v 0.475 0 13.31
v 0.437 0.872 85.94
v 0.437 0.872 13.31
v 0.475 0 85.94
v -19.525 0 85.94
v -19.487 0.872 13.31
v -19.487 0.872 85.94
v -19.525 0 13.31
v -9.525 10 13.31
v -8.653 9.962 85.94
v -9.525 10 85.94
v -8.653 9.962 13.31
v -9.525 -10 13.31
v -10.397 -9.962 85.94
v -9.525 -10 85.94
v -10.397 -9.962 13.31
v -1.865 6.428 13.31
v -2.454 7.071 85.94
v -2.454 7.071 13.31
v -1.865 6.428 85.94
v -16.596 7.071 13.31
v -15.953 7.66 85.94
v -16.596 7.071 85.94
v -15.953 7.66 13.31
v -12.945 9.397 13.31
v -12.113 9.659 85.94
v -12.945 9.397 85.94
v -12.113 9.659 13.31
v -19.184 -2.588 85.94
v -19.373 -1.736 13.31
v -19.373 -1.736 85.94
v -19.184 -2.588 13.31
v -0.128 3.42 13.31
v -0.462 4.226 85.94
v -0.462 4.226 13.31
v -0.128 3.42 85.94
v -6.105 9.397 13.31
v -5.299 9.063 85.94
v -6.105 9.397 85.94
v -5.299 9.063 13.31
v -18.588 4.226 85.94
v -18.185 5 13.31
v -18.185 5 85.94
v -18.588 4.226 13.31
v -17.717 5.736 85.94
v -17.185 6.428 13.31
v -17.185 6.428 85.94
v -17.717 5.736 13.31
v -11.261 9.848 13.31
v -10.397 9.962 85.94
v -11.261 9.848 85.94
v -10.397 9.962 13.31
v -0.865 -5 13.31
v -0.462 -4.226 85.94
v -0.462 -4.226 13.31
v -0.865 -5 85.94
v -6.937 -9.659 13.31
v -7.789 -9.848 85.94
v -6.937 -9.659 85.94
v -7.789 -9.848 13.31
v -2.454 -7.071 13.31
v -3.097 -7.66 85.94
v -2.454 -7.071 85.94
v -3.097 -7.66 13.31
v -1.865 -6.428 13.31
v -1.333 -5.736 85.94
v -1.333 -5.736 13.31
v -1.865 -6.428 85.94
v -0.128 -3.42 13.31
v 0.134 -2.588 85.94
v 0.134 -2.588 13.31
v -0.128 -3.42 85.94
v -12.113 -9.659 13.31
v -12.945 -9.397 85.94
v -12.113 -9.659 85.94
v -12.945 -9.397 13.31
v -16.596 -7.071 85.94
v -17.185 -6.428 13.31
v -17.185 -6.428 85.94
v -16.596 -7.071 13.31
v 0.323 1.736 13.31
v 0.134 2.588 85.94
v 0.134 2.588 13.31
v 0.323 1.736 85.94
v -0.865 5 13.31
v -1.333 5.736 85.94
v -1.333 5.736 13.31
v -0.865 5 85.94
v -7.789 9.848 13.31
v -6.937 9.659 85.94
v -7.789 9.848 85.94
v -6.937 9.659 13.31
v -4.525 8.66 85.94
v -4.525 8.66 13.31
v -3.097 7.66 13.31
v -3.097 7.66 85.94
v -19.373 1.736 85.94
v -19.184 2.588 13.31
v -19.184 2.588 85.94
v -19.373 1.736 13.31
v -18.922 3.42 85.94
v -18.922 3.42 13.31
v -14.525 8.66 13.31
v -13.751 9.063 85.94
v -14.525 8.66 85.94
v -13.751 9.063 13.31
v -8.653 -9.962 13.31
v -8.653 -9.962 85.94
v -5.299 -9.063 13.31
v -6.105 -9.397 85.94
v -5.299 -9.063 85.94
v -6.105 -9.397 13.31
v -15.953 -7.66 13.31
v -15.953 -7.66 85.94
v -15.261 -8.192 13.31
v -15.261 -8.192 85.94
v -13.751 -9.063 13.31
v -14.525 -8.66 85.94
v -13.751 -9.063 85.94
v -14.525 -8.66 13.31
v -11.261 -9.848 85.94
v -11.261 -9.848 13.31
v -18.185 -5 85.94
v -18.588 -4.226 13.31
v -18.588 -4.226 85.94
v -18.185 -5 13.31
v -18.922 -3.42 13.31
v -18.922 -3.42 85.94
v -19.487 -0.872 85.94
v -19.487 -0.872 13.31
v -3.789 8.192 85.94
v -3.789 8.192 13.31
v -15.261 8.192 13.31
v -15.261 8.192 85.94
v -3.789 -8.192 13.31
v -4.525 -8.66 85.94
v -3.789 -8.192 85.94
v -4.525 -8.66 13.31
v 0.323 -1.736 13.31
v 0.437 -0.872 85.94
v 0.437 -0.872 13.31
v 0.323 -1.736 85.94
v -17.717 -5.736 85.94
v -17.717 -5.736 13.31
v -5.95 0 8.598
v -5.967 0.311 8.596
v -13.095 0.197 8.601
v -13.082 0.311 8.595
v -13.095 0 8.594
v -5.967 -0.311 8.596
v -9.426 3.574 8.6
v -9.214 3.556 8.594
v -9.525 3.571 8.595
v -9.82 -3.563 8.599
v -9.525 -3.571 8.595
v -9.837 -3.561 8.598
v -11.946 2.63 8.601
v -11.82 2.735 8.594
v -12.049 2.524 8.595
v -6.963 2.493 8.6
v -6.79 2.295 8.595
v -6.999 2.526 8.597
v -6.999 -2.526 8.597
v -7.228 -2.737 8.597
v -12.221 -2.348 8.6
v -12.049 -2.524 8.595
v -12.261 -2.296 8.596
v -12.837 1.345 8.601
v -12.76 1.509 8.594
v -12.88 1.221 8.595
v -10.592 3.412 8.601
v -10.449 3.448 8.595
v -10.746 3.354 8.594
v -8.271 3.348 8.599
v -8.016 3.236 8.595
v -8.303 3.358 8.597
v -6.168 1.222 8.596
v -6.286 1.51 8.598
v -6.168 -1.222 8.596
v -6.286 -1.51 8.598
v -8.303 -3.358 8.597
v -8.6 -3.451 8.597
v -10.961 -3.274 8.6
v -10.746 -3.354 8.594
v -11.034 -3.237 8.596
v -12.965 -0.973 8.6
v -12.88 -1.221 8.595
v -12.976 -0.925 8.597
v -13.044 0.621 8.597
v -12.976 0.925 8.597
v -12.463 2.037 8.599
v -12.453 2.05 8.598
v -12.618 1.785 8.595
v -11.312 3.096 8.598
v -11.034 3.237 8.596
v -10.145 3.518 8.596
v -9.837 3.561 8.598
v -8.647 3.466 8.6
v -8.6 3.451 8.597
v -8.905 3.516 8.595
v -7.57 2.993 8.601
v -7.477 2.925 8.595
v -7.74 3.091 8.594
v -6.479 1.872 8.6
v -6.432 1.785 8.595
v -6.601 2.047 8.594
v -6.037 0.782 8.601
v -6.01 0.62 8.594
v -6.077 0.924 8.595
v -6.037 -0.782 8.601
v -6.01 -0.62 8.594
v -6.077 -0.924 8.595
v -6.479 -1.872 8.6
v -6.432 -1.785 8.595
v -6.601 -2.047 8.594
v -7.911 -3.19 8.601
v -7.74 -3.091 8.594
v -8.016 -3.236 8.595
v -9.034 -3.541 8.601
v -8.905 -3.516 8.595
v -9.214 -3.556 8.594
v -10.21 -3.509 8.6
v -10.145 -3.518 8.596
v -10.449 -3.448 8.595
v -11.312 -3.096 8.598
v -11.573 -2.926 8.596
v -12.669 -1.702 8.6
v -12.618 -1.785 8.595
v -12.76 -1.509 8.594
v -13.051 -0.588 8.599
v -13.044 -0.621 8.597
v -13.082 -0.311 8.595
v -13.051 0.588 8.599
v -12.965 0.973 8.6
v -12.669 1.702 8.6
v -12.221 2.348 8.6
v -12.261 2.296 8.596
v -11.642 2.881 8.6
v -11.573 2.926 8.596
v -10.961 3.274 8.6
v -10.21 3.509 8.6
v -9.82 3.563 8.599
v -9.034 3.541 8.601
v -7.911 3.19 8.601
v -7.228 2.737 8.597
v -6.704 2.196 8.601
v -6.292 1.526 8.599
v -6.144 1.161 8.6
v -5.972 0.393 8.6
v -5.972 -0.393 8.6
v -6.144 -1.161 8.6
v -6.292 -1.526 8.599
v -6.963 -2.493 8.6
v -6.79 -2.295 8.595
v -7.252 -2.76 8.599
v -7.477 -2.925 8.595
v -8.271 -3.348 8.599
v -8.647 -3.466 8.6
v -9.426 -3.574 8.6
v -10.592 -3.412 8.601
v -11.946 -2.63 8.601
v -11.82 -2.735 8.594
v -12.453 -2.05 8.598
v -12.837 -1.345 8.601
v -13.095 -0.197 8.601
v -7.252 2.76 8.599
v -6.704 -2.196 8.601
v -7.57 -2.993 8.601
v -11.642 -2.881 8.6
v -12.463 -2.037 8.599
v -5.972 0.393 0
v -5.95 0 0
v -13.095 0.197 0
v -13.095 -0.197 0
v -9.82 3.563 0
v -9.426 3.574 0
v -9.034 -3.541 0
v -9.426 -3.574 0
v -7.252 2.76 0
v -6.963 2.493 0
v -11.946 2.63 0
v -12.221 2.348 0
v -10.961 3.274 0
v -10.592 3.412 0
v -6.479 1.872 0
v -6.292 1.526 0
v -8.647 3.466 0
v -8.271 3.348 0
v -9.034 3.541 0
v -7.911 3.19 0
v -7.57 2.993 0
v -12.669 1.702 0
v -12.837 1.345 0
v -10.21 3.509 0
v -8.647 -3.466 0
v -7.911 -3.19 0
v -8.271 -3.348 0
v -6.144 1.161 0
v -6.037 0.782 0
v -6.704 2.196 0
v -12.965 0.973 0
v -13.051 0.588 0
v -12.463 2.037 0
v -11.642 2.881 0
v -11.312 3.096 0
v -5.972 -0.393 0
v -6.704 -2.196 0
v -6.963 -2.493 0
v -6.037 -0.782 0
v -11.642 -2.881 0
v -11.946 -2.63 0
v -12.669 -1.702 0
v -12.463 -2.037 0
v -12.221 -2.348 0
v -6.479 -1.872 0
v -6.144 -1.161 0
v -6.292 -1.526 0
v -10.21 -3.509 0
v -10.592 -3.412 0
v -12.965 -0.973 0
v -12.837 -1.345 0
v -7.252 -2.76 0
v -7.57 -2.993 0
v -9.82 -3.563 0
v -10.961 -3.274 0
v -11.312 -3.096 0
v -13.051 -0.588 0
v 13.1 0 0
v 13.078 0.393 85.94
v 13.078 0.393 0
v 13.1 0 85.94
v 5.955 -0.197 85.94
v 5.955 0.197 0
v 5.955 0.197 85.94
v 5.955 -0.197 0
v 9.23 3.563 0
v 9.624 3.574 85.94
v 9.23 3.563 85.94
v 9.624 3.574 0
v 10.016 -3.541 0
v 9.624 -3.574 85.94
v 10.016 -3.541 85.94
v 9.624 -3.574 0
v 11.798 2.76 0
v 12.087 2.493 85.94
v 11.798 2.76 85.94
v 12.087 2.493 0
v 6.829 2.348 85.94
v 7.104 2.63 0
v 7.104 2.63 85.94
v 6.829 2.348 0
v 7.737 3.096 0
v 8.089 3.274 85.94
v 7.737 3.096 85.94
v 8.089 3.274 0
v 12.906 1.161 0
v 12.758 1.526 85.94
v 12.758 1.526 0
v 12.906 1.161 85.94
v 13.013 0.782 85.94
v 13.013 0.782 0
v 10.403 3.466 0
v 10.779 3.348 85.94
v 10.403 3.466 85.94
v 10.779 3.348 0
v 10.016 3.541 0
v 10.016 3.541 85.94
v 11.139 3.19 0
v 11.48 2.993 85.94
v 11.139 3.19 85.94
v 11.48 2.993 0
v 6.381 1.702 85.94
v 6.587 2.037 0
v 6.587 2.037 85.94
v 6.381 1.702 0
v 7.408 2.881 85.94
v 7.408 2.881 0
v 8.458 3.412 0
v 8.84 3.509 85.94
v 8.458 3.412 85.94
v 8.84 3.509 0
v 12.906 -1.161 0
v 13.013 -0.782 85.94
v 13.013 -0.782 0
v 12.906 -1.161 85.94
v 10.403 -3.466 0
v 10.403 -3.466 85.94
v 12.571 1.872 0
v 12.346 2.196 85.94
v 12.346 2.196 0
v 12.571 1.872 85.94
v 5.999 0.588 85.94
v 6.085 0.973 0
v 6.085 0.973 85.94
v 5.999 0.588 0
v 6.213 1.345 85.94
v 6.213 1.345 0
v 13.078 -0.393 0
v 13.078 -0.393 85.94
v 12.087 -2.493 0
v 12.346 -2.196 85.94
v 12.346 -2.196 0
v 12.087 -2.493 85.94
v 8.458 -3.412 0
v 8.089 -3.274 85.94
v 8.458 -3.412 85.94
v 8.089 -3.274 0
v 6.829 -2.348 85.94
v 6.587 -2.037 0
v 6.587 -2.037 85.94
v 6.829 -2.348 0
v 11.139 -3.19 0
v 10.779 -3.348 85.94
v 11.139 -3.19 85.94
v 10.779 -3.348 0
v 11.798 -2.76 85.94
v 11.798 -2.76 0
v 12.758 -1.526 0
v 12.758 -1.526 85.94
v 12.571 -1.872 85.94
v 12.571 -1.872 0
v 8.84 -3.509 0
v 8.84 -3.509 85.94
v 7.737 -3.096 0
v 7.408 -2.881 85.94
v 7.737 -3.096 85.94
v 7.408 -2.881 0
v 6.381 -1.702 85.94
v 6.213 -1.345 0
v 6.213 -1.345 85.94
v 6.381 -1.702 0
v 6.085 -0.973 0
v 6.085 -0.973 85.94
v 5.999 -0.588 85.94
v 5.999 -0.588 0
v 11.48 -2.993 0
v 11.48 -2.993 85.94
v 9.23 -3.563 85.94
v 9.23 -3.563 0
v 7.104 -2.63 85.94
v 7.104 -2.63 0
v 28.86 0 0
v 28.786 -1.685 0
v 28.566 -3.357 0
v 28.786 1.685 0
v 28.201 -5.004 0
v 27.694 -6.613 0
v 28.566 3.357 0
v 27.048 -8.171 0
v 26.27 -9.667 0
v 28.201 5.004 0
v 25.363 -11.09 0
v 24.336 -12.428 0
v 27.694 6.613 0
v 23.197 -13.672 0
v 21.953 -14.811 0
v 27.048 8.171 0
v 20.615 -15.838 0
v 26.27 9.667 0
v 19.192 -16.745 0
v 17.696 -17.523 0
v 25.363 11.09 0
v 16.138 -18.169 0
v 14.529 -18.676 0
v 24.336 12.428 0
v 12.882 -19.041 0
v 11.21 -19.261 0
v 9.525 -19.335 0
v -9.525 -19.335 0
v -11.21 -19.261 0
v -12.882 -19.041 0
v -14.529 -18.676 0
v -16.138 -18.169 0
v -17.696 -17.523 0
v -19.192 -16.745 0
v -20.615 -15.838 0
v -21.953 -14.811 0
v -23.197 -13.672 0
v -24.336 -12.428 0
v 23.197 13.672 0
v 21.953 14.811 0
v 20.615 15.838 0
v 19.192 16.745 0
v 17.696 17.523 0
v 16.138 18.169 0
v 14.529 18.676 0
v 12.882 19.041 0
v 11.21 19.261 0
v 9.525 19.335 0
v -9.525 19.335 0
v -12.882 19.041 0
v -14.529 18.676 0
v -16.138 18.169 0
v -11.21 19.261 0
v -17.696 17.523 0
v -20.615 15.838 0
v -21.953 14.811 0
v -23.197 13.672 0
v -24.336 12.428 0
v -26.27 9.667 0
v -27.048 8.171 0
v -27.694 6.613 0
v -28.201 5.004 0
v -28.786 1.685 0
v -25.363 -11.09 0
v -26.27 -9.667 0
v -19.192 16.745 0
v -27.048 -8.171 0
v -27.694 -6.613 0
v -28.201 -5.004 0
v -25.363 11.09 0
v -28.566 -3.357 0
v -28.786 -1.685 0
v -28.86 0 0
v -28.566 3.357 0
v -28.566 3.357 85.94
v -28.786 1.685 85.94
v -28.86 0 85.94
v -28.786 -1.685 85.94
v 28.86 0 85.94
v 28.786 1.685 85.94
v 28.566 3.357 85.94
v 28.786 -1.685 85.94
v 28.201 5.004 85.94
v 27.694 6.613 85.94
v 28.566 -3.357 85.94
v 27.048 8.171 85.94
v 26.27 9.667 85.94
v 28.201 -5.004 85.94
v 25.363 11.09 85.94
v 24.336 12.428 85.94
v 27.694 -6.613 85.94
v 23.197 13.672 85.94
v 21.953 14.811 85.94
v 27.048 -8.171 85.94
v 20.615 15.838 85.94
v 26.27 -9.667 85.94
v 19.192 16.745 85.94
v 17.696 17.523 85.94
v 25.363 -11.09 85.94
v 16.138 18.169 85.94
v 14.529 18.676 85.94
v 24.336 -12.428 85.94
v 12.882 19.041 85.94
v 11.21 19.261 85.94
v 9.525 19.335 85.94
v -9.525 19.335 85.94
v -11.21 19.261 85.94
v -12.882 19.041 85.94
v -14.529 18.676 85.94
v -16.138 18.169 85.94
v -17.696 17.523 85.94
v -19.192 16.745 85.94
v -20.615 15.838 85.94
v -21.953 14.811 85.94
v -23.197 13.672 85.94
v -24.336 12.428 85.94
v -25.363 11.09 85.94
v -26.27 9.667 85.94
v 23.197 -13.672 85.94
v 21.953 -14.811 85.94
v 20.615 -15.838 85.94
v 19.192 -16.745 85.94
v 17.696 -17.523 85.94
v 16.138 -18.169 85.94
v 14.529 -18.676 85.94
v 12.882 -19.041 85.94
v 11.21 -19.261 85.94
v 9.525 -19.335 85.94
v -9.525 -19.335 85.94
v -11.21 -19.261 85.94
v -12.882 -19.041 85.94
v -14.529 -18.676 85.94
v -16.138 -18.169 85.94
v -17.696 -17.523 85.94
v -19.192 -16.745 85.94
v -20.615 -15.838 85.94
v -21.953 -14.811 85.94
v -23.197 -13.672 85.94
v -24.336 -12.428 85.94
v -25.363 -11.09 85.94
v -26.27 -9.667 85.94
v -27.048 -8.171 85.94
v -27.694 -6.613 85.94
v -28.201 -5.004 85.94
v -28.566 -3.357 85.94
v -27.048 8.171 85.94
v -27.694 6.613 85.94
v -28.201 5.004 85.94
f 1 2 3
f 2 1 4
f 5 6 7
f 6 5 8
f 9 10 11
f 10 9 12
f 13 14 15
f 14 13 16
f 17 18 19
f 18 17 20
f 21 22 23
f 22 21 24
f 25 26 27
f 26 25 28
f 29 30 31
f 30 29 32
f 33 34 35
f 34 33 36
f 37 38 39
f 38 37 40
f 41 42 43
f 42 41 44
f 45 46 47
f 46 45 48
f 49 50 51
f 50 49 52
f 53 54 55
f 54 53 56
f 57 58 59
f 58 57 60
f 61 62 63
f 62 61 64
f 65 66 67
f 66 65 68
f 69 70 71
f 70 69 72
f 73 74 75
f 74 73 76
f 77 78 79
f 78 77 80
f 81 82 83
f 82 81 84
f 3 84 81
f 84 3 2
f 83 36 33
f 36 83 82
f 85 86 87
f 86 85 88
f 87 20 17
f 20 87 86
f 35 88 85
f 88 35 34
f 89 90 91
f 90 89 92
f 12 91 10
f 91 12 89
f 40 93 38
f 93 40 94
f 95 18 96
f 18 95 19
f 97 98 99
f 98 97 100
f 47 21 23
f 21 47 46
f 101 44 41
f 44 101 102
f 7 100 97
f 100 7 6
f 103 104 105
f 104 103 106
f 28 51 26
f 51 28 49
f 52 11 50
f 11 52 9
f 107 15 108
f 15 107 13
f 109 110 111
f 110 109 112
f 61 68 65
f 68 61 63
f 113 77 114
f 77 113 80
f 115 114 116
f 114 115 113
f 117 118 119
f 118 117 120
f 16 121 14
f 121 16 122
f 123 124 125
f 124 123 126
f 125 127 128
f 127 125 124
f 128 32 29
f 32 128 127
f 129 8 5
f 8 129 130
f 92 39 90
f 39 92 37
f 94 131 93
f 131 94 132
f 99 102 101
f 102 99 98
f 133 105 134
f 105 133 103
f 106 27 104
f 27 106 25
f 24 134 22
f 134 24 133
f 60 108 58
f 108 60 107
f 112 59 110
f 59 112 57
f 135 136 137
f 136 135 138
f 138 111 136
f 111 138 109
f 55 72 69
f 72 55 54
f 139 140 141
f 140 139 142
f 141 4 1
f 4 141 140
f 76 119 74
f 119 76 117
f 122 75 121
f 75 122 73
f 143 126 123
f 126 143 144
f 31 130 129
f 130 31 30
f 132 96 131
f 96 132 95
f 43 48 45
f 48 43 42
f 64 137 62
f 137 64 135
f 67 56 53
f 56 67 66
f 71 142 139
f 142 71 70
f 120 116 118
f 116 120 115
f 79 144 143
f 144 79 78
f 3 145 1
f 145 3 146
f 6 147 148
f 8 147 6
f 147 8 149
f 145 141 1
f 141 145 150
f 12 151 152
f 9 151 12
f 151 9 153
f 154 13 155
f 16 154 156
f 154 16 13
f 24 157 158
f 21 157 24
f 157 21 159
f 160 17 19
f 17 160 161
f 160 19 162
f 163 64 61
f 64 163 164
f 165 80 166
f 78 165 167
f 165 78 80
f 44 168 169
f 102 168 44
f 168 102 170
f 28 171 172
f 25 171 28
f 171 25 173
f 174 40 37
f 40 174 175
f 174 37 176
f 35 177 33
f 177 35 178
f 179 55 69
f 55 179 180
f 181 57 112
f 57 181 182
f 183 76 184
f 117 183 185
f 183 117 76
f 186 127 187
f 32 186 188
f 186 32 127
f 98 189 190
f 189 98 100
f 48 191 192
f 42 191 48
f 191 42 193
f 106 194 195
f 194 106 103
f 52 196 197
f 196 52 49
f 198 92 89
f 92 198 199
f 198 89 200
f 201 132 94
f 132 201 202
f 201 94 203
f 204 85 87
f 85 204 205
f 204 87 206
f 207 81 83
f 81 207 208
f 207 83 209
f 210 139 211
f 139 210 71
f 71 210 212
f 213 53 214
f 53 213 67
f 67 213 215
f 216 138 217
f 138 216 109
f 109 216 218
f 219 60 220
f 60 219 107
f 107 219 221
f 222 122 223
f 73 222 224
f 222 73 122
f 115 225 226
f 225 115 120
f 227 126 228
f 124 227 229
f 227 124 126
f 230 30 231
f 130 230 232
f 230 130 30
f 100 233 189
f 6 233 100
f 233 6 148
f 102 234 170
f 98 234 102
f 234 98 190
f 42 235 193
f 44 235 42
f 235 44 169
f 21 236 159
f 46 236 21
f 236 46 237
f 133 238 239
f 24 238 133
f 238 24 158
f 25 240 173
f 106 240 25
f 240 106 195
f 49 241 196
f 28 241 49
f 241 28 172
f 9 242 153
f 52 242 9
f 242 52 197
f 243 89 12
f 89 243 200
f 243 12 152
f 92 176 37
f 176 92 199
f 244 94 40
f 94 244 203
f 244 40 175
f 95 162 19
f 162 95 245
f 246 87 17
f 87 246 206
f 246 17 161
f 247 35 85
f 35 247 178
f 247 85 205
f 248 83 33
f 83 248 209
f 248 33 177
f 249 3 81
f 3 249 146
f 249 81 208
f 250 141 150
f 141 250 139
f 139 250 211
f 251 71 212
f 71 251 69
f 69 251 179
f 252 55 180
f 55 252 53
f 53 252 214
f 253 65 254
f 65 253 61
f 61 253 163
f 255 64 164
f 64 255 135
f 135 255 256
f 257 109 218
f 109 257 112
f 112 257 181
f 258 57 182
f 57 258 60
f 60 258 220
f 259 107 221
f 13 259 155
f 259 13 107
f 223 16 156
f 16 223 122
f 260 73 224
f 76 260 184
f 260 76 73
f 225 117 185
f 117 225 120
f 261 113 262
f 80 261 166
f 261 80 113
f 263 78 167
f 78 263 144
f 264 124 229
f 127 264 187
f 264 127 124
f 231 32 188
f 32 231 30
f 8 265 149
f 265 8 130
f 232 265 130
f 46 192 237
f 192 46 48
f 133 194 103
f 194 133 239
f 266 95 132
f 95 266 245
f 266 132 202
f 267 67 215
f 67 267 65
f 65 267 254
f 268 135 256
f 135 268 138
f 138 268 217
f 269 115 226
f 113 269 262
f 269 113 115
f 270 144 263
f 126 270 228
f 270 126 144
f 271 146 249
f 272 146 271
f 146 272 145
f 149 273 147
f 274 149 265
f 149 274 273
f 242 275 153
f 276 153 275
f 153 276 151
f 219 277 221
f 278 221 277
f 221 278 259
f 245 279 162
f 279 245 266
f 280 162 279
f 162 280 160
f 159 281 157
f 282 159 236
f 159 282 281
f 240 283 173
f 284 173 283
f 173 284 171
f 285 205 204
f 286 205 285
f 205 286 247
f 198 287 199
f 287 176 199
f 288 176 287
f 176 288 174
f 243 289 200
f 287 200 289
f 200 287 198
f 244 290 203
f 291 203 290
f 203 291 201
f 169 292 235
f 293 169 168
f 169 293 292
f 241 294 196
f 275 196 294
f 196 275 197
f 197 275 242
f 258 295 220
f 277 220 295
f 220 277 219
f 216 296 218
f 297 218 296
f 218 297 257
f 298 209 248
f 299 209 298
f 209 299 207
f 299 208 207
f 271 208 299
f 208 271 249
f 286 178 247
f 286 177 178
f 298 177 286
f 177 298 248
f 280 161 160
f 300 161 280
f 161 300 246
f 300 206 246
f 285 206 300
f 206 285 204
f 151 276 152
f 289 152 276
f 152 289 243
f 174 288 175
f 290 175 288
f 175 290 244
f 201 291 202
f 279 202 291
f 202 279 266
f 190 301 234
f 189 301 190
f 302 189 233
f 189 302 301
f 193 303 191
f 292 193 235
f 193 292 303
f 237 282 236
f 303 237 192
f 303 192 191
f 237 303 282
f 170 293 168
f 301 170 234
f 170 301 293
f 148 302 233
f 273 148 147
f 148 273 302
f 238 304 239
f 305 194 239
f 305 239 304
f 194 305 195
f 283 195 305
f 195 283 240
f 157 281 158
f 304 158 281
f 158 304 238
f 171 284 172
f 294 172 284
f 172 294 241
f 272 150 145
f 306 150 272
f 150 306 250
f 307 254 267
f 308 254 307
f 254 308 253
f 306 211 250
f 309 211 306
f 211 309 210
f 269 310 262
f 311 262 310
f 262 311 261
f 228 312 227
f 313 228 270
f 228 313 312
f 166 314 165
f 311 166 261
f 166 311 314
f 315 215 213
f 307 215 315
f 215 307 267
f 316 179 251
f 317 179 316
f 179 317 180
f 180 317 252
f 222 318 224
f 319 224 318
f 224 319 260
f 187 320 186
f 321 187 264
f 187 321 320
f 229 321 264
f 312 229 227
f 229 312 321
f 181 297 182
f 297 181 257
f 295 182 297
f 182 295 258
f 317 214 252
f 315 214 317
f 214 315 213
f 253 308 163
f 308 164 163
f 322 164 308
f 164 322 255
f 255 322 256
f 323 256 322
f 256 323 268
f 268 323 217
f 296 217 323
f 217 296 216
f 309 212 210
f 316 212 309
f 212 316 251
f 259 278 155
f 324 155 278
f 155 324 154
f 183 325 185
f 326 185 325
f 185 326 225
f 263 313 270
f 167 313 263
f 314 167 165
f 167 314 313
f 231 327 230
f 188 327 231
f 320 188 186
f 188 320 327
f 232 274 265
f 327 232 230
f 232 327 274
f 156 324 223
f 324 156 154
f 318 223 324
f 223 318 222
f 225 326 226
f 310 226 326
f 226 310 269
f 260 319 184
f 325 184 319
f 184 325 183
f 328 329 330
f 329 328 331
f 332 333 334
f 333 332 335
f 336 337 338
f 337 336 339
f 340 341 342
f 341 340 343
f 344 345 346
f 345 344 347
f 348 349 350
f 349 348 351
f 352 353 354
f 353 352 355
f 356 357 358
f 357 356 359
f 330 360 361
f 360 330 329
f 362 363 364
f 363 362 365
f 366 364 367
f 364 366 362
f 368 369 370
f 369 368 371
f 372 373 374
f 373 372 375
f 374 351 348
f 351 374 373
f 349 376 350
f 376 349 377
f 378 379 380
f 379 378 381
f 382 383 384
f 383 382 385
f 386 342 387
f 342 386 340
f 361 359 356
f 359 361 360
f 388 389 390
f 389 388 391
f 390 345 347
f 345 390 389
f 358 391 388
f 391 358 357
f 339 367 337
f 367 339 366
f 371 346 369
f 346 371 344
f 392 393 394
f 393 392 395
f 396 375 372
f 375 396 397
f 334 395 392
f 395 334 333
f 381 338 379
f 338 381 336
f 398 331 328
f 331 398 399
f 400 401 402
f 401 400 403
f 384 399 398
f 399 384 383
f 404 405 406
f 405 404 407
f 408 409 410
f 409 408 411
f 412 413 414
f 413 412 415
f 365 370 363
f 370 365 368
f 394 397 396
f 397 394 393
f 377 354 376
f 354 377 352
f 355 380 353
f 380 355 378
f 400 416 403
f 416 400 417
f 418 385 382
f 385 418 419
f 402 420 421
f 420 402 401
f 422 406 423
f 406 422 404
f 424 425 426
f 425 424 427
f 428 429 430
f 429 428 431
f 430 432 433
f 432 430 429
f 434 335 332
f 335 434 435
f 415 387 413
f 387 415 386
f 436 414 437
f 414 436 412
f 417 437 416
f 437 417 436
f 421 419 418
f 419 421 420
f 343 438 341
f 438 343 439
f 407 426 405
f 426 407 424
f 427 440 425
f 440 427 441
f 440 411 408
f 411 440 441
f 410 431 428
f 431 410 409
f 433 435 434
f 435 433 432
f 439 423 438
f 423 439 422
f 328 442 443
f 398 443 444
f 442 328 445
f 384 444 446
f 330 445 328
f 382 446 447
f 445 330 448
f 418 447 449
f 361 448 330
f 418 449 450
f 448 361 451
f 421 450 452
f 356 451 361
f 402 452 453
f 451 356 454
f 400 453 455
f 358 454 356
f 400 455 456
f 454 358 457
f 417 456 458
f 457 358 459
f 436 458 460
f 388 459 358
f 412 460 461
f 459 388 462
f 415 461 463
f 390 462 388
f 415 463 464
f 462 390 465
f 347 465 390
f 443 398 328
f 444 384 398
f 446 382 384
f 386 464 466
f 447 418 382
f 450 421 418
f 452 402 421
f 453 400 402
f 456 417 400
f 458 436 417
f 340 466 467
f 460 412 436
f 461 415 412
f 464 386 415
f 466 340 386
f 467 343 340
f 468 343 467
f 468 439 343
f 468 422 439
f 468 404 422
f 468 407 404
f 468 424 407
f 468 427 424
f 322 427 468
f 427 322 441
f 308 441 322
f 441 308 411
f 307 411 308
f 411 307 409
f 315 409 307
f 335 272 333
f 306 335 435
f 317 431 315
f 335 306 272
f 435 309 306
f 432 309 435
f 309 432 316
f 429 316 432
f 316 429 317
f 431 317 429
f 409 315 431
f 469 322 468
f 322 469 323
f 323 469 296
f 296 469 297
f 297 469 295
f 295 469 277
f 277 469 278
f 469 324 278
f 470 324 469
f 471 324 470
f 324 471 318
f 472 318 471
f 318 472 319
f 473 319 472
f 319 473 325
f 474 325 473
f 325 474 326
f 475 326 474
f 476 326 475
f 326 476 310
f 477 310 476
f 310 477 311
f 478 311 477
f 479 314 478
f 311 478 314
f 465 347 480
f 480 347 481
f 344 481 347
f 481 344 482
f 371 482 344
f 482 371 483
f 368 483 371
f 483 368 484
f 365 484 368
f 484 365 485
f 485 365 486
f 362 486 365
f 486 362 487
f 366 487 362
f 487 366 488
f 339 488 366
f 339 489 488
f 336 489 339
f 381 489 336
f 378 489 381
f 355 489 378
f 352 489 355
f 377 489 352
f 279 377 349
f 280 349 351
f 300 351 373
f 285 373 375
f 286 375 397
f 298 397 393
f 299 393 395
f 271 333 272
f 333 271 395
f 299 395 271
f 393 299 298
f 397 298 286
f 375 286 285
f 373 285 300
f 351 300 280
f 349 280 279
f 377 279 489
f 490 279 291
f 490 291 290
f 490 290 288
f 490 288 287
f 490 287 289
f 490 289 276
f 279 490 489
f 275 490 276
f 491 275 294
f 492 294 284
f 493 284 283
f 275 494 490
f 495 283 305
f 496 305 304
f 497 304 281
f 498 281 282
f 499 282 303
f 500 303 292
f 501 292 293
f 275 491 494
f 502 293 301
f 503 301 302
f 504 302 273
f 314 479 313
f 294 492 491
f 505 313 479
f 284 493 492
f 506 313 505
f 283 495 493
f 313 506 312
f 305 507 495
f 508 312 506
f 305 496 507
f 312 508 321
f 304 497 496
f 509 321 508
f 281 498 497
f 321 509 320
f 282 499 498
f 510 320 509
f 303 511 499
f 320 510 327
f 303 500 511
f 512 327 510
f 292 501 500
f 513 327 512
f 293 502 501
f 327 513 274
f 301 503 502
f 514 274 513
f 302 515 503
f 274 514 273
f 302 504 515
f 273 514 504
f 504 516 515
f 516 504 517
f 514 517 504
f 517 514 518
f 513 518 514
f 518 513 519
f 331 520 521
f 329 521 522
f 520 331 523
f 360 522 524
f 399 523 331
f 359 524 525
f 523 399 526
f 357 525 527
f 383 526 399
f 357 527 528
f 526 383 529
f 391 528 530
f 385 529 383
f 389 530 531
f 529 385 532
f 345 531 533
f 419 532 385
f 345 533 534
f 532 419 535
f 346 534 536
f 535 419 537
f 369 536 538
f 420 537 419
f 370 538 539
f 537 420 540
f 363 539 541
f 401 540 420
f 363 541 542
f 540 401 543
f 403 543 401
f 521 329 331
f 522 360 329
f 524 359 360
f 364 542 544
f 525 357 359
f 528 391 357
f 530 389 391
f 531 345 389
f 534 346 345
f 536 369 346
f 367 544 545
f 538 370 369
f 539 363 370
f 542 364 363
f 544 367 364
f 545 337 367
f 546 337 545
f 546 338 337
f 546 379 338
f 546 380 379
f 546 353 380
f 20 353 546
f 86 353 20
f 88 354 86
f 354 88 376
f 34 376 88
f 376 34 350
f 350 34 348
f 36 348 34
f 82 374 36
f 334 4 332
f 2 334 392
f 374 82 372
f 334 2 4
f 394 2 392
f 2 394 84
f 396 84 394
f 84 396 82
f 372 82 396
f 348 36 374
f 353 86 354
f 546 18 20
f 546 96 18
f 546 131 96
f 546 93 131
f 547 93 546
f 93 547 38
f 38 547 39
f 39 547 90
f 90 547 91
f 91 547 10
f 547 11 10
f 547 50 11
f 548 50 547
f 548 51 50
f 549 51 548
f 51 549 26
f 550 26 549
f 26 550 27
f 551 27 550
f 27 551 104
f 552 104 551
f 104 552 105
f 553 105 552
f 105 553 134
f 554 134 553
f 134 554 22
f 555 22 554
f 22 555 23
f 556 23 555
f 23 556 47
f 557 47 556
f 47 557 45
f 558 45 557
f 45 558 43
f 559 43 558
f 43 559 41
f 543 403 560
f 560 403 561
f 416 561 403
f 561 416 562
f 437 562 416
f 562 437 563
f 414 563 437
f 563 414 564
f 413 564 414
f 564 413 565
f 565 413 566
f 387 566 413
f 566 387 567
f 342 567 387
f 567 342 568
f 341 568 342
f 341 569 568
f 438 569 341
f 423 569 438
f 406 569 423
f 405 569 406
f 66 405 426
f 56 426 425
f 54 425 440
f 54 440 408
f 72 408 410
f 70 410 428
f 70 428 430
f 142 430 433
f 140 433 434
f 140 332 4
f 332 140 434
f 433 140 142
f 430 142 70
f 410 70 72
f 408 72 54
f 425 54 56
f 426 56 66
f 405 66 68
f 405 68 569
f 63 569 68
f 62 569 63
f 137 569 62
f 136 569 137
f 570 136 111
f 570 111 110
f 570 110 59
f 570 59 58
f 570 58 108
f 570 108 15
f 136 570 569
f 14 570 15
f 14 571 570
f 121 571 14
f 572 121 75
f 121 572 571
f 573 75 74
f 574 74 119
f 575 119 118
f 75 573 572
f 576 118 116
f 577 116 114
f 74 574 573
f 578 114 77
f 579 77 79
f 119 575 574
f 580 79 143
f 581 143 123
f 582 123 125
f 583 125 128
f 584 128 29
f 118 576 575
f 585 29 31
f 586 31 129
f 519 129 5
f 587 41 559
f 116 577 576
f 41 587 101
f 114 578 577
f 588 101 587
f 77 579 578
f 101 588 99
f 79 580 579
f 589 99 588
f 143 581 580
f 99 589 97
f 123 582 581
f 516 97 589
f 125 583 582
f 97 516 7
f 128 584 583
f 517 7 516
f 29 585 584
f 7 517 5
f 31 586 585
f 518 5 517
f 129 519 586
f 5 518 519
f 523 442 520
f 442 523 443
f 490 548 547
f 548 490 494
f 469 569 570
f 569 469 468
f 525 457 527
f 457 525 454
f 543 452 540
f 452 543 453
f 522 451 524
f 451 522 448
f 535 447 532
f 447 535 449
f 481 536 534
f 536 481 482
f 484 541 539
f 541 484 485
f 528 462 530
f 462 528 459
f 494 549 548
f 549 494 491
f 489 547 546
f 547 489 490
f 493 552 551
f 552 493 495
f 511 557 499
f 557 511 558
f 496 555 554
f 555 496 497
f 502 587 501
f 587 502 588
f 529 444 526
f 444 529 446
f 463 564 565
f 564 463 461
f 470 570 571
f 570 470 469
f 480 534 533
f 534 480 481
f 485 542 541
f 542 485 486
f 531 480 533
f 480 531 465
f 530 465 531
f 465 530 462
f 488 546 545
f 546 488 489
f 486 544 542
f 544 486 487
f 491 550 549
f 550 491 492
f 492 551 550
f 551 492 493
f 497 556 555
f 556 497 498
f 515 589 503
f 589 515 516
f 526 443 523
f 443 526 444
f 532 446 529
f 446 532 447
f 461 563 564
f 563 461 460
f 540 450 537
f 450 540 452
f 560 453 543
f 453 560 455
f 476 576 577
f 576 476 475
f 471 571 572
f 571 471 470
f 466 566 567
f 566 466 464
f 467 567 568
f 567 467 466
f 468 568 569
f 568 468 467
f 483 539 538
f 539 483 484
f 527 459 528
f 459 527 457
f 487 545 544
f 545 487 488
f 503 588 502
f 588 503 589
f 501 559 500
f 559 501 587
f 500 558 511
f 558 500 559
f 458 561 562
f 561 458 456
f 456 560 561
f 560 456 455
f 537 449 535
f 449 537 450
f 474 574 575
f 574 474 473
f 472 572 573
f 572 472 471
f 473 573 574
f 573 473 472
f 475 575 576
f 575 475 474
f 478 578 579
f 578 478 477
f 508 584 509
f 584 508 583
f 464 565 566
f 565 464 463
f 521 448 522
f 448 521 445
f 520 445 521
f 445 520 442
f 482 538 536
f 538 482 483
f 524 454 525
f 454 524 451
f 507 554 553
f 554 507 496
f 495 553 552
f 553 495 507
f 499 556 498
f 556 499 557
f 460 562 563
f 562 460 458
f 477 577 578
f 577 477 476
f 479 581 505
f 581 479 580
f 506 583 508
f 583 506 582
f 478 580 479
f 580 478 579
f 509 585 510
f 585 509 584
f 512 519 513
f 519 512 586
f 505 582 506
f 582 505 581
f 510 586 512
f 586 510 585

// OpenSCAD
d = 16.21*2+6.25;
h = 22.44+2.5*25.4;
hole_d = 25.4/4+0.8;
countersink_d = 20;
s = 25.4*0.75;
counterbore_h = h-15+1.7;
epsilon=0.01;
countersink_slope = 5.5/15;
countersink_h = countersink_slope*countersink_d;
$fa = $preview? 12 : 5;
$fs = $preview ? 2 : 0.4;

module add() {
  linear_extrude(h) {
    hull() {
      translate([-s/2, 0]) circle(d=d);
      translate([s/2, 0]) circle(d=d);
    }
  }
}

module subtract() {
  translate([-s/2, 0]) {
    // Tapcon hole
    cylinder(d=hole_d,h=h*3,center=true);
    // tapcon countersink
    translate([0,0,h-counterbore_h+epsilon]){
      cylinder(d=countersink_d, h=counterbore_h);
      translate([0,0,-countersink_h]) cylinder(d2=countersink_d, d1=0, h=countersink_h);
    }
  }
  // shutter anchor hole
  translate([s/2,0]) cylinder(d=hole_d, h=h*3, center=true);
}

difference() {
  add();
  subtract();
}
  
